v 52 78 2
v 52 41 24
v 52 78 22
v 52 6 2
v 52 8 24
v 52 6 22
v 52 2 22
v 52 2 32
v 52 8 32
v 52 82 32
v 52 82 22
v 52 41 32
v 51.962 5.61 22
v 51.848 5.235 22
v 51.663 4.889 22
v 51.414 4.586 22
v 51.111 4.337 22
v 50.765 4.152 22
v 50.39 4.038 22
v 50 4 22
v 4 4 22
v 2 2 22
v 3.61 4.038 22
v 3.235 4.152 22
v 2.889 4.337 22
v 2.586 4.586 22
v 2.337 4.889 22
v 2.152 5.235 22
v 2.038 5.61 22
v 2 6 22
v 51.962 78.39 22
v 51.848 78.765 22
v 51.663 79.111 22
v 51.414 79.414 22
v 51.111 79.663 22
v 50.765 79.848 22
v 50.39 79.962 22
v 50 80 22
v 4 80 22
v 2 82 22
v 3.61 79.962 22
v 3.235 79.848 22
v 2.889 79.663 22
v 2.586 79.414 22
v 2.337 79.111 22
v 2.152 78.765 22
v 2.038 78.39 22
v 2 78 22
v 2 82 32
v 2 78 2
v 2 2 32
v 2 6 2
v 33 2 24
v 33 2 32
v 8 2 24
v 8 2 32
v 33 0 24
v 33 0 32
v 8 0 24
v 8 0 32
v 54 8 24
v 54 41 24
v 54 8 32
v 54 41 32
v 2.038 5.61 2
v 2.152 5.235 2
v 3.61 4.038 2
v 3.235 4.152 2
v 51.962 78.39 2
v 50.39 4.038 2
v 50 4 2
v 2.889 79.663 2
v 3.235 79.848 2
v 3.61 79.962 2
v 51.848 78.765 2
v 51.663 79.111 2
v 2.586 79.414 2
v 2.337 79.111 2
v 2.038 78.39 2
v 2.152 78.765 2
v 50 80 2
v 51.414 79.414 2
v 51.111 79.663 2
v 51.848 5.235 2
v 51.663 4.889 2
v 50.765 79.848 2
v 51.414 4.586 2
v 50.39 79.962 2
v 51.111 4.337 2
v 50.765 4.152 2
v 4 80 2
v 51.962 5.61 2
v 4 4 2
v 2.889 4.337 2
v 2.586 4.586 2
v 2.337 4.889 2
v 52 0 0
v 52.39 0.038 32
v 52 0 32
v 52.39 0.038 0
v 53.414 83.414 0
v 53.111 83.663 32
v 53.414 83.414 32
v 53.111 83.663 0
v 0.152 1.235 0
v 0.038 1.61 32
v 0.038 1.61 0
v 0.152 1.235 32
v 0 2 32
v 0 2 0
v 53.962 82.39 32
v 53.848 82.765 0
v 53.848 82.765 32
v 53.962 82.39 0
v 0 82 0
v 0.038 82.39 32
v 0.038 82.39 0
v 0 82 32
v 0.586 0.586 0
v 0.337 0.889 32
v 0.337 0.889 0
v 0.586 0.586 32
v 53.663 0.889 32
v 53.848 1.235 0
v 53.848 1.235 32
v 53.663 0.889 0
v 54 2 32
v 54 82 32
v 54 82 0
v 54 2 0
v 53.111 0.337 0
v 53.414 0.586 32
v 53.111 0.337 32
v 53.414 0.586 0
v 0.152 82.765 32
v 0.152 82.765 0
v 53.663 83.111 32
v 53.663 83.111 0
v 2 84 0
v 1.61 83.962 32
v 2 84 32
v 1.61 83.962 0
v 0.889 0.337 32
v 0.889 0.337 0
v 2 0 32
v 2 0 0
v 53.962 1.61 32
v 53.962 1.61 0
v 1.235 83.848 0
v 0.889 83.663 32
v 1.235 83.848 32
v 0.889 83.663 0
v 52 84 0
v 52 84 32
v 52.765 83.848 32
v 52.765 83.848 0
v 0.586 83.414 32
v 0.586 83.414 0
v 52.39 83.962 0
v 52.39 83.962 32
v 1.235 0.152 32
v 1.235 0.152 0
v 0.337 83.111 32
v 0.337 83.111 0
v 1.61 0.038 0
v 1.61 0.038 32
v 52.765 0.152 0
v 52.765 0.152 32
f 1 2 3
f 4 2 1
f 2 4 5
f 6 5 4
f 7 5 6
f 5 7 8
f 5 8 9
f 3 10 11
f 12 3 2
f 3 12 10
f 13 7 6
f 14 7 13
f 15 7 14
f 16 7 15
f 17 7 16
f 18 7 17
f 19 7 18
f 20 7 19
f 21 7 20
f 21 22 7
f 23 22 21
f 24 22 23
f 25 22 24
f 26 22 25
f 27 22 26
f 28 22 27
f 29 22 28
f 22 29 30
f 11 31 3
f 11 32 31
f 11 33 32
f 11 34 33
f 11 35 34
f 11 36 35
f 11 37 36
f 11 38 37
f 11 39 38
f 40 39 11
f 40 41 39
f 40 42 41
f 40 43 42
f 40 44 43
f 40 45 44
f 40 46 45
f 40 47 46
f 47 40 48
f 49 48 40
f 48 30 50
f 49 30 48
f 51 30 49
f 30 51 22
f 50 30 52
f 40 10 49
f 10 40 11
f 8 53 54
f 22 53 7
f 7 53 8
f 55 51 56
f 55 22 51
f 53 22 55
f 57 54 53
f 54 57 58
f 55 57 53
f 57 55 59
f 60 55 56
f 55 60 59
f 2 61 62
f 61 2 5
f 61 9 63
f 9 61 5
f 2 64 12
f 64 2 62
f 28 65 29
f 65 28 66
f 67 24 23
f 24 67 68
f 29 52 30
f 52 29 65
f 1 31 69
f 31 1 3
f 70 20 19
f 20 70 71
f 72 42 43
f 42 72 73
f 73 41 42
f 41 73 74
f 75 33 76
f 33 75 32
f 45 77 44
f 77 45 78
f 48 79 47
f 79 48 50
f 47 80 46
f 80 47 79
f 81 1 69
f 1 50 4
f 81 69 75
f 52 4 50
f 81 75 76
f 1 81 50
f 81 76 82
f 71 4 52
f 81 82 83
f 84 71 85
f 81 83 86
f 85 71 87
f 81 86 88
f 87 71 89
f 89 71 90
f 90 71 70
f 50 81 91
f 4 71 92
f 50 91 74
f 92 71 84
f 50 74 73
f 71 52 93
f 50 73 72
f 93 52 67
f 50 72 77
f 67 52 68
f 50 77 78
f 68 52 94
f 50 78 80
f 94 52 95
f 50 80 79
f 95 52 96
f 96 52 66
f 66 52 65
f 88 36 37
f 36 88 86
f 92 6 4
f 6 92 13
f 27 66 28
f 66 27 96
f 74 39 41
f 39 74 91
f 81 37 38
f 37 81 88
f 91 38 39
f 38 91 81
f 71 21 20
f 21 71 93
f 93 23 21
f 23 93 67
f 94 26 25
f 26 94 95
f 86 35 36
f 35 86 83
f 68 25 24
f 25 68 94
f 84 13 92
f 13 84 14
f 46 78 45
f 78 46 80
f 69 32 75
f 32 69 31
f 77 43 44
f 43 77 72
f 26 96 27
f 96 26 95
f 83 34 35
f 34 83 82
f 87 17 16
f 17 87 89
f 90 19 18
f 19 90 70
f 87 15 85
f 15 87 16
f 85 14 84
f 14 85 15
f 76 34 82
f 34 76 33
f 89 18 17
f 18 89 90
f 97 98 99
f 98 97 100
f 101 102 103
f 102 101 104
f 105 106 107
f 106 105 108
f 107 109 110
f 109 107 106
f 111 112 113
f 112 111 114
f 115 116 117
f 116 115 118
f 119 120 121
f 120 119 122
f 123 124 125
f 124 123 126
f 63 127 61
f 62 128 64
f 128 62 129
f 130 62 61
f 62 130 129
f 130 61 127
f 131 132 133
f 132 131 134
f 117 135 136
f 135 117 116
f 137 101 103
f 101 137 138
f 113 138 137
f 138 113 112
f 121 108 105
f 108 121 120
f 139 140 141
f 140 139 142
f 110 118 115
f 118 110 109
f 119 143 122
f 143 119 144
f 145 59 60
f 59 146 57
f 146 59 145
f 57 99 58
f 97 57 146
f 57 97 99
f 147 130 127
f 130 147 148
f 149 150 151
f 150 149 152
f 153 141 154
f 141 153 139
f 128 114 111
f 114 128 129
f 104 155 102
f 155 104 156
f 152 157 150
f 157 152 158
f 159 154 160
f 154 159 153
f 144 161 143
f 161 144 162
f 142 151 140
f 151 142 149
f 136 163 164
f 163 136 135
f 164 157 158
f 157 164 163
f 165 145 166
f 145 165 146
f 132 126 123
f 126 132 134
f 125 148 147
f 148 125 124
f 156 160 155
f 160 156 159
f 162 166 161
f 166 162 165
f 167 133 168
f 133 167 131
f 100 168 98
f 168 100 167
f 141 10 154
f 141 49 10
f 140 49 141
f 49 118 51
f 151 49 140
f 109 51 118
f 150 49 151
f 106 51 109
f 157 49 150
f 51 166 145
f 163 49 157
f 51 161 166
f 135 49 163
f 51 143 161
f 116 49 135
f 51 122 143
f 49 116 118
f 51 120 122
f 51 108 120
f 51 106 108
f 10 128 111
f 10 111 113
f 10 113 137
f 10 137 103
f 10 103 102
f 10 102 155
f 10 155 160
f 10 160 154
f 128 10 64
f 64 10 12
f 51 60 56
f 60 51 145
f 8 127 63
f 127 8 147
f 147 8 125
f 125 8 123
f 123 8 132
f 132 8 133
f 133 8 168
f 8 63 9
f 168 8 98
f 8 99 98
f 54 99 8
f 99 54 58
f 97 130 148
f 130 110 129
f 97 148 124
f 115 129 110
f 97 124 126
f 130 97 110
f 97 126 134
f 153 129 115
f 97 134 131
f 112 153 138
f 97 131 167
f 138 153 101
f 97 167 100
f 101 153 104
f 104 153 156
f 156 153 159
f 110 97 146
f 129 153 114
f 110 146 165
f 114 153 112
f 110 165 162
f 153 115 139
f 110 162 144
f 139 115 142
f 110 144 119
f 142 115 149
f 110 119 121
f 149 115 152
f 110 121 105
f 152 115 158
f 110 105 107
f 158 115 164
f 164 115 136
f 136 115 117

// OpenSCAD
use <smooth_prim.scad>

w = 50;
l = 80;
wclear = 4; // wall clearance

module symbiotic_model(){
    cube([w, l, 11]);
    
    translate([6, -wclear, 2]) cube([25, 15 + wclear, 10]);
    translate([w - 5, 60, 2]) cube([5, 7, 12]);
    translate([w - 15, 6, 2]) cube([15 + wclear, 20, 20]);
    translate([w - 15, 25, 2]) cube([15 + wclear, 14, 10]);
    translate([29, 19, 2]) cube([5, 7, 10]);
    translate([6, 70, 2 + 15/2]) cylinder(h=15, r=3, center=true);
    translate([20, 35, 2]) cube([10, 30, 10]);
}

// Bottom
difference(){
    SmoothXYCube([w + 4, l+4, 32], 2);
    union(){
        translate([2, 2, 20 + 2]) #symbiotic_model();
        translate([2, 4, 2]) SmoothXYCube([w, l-4, 20], 2);
    }
}

// Lid
